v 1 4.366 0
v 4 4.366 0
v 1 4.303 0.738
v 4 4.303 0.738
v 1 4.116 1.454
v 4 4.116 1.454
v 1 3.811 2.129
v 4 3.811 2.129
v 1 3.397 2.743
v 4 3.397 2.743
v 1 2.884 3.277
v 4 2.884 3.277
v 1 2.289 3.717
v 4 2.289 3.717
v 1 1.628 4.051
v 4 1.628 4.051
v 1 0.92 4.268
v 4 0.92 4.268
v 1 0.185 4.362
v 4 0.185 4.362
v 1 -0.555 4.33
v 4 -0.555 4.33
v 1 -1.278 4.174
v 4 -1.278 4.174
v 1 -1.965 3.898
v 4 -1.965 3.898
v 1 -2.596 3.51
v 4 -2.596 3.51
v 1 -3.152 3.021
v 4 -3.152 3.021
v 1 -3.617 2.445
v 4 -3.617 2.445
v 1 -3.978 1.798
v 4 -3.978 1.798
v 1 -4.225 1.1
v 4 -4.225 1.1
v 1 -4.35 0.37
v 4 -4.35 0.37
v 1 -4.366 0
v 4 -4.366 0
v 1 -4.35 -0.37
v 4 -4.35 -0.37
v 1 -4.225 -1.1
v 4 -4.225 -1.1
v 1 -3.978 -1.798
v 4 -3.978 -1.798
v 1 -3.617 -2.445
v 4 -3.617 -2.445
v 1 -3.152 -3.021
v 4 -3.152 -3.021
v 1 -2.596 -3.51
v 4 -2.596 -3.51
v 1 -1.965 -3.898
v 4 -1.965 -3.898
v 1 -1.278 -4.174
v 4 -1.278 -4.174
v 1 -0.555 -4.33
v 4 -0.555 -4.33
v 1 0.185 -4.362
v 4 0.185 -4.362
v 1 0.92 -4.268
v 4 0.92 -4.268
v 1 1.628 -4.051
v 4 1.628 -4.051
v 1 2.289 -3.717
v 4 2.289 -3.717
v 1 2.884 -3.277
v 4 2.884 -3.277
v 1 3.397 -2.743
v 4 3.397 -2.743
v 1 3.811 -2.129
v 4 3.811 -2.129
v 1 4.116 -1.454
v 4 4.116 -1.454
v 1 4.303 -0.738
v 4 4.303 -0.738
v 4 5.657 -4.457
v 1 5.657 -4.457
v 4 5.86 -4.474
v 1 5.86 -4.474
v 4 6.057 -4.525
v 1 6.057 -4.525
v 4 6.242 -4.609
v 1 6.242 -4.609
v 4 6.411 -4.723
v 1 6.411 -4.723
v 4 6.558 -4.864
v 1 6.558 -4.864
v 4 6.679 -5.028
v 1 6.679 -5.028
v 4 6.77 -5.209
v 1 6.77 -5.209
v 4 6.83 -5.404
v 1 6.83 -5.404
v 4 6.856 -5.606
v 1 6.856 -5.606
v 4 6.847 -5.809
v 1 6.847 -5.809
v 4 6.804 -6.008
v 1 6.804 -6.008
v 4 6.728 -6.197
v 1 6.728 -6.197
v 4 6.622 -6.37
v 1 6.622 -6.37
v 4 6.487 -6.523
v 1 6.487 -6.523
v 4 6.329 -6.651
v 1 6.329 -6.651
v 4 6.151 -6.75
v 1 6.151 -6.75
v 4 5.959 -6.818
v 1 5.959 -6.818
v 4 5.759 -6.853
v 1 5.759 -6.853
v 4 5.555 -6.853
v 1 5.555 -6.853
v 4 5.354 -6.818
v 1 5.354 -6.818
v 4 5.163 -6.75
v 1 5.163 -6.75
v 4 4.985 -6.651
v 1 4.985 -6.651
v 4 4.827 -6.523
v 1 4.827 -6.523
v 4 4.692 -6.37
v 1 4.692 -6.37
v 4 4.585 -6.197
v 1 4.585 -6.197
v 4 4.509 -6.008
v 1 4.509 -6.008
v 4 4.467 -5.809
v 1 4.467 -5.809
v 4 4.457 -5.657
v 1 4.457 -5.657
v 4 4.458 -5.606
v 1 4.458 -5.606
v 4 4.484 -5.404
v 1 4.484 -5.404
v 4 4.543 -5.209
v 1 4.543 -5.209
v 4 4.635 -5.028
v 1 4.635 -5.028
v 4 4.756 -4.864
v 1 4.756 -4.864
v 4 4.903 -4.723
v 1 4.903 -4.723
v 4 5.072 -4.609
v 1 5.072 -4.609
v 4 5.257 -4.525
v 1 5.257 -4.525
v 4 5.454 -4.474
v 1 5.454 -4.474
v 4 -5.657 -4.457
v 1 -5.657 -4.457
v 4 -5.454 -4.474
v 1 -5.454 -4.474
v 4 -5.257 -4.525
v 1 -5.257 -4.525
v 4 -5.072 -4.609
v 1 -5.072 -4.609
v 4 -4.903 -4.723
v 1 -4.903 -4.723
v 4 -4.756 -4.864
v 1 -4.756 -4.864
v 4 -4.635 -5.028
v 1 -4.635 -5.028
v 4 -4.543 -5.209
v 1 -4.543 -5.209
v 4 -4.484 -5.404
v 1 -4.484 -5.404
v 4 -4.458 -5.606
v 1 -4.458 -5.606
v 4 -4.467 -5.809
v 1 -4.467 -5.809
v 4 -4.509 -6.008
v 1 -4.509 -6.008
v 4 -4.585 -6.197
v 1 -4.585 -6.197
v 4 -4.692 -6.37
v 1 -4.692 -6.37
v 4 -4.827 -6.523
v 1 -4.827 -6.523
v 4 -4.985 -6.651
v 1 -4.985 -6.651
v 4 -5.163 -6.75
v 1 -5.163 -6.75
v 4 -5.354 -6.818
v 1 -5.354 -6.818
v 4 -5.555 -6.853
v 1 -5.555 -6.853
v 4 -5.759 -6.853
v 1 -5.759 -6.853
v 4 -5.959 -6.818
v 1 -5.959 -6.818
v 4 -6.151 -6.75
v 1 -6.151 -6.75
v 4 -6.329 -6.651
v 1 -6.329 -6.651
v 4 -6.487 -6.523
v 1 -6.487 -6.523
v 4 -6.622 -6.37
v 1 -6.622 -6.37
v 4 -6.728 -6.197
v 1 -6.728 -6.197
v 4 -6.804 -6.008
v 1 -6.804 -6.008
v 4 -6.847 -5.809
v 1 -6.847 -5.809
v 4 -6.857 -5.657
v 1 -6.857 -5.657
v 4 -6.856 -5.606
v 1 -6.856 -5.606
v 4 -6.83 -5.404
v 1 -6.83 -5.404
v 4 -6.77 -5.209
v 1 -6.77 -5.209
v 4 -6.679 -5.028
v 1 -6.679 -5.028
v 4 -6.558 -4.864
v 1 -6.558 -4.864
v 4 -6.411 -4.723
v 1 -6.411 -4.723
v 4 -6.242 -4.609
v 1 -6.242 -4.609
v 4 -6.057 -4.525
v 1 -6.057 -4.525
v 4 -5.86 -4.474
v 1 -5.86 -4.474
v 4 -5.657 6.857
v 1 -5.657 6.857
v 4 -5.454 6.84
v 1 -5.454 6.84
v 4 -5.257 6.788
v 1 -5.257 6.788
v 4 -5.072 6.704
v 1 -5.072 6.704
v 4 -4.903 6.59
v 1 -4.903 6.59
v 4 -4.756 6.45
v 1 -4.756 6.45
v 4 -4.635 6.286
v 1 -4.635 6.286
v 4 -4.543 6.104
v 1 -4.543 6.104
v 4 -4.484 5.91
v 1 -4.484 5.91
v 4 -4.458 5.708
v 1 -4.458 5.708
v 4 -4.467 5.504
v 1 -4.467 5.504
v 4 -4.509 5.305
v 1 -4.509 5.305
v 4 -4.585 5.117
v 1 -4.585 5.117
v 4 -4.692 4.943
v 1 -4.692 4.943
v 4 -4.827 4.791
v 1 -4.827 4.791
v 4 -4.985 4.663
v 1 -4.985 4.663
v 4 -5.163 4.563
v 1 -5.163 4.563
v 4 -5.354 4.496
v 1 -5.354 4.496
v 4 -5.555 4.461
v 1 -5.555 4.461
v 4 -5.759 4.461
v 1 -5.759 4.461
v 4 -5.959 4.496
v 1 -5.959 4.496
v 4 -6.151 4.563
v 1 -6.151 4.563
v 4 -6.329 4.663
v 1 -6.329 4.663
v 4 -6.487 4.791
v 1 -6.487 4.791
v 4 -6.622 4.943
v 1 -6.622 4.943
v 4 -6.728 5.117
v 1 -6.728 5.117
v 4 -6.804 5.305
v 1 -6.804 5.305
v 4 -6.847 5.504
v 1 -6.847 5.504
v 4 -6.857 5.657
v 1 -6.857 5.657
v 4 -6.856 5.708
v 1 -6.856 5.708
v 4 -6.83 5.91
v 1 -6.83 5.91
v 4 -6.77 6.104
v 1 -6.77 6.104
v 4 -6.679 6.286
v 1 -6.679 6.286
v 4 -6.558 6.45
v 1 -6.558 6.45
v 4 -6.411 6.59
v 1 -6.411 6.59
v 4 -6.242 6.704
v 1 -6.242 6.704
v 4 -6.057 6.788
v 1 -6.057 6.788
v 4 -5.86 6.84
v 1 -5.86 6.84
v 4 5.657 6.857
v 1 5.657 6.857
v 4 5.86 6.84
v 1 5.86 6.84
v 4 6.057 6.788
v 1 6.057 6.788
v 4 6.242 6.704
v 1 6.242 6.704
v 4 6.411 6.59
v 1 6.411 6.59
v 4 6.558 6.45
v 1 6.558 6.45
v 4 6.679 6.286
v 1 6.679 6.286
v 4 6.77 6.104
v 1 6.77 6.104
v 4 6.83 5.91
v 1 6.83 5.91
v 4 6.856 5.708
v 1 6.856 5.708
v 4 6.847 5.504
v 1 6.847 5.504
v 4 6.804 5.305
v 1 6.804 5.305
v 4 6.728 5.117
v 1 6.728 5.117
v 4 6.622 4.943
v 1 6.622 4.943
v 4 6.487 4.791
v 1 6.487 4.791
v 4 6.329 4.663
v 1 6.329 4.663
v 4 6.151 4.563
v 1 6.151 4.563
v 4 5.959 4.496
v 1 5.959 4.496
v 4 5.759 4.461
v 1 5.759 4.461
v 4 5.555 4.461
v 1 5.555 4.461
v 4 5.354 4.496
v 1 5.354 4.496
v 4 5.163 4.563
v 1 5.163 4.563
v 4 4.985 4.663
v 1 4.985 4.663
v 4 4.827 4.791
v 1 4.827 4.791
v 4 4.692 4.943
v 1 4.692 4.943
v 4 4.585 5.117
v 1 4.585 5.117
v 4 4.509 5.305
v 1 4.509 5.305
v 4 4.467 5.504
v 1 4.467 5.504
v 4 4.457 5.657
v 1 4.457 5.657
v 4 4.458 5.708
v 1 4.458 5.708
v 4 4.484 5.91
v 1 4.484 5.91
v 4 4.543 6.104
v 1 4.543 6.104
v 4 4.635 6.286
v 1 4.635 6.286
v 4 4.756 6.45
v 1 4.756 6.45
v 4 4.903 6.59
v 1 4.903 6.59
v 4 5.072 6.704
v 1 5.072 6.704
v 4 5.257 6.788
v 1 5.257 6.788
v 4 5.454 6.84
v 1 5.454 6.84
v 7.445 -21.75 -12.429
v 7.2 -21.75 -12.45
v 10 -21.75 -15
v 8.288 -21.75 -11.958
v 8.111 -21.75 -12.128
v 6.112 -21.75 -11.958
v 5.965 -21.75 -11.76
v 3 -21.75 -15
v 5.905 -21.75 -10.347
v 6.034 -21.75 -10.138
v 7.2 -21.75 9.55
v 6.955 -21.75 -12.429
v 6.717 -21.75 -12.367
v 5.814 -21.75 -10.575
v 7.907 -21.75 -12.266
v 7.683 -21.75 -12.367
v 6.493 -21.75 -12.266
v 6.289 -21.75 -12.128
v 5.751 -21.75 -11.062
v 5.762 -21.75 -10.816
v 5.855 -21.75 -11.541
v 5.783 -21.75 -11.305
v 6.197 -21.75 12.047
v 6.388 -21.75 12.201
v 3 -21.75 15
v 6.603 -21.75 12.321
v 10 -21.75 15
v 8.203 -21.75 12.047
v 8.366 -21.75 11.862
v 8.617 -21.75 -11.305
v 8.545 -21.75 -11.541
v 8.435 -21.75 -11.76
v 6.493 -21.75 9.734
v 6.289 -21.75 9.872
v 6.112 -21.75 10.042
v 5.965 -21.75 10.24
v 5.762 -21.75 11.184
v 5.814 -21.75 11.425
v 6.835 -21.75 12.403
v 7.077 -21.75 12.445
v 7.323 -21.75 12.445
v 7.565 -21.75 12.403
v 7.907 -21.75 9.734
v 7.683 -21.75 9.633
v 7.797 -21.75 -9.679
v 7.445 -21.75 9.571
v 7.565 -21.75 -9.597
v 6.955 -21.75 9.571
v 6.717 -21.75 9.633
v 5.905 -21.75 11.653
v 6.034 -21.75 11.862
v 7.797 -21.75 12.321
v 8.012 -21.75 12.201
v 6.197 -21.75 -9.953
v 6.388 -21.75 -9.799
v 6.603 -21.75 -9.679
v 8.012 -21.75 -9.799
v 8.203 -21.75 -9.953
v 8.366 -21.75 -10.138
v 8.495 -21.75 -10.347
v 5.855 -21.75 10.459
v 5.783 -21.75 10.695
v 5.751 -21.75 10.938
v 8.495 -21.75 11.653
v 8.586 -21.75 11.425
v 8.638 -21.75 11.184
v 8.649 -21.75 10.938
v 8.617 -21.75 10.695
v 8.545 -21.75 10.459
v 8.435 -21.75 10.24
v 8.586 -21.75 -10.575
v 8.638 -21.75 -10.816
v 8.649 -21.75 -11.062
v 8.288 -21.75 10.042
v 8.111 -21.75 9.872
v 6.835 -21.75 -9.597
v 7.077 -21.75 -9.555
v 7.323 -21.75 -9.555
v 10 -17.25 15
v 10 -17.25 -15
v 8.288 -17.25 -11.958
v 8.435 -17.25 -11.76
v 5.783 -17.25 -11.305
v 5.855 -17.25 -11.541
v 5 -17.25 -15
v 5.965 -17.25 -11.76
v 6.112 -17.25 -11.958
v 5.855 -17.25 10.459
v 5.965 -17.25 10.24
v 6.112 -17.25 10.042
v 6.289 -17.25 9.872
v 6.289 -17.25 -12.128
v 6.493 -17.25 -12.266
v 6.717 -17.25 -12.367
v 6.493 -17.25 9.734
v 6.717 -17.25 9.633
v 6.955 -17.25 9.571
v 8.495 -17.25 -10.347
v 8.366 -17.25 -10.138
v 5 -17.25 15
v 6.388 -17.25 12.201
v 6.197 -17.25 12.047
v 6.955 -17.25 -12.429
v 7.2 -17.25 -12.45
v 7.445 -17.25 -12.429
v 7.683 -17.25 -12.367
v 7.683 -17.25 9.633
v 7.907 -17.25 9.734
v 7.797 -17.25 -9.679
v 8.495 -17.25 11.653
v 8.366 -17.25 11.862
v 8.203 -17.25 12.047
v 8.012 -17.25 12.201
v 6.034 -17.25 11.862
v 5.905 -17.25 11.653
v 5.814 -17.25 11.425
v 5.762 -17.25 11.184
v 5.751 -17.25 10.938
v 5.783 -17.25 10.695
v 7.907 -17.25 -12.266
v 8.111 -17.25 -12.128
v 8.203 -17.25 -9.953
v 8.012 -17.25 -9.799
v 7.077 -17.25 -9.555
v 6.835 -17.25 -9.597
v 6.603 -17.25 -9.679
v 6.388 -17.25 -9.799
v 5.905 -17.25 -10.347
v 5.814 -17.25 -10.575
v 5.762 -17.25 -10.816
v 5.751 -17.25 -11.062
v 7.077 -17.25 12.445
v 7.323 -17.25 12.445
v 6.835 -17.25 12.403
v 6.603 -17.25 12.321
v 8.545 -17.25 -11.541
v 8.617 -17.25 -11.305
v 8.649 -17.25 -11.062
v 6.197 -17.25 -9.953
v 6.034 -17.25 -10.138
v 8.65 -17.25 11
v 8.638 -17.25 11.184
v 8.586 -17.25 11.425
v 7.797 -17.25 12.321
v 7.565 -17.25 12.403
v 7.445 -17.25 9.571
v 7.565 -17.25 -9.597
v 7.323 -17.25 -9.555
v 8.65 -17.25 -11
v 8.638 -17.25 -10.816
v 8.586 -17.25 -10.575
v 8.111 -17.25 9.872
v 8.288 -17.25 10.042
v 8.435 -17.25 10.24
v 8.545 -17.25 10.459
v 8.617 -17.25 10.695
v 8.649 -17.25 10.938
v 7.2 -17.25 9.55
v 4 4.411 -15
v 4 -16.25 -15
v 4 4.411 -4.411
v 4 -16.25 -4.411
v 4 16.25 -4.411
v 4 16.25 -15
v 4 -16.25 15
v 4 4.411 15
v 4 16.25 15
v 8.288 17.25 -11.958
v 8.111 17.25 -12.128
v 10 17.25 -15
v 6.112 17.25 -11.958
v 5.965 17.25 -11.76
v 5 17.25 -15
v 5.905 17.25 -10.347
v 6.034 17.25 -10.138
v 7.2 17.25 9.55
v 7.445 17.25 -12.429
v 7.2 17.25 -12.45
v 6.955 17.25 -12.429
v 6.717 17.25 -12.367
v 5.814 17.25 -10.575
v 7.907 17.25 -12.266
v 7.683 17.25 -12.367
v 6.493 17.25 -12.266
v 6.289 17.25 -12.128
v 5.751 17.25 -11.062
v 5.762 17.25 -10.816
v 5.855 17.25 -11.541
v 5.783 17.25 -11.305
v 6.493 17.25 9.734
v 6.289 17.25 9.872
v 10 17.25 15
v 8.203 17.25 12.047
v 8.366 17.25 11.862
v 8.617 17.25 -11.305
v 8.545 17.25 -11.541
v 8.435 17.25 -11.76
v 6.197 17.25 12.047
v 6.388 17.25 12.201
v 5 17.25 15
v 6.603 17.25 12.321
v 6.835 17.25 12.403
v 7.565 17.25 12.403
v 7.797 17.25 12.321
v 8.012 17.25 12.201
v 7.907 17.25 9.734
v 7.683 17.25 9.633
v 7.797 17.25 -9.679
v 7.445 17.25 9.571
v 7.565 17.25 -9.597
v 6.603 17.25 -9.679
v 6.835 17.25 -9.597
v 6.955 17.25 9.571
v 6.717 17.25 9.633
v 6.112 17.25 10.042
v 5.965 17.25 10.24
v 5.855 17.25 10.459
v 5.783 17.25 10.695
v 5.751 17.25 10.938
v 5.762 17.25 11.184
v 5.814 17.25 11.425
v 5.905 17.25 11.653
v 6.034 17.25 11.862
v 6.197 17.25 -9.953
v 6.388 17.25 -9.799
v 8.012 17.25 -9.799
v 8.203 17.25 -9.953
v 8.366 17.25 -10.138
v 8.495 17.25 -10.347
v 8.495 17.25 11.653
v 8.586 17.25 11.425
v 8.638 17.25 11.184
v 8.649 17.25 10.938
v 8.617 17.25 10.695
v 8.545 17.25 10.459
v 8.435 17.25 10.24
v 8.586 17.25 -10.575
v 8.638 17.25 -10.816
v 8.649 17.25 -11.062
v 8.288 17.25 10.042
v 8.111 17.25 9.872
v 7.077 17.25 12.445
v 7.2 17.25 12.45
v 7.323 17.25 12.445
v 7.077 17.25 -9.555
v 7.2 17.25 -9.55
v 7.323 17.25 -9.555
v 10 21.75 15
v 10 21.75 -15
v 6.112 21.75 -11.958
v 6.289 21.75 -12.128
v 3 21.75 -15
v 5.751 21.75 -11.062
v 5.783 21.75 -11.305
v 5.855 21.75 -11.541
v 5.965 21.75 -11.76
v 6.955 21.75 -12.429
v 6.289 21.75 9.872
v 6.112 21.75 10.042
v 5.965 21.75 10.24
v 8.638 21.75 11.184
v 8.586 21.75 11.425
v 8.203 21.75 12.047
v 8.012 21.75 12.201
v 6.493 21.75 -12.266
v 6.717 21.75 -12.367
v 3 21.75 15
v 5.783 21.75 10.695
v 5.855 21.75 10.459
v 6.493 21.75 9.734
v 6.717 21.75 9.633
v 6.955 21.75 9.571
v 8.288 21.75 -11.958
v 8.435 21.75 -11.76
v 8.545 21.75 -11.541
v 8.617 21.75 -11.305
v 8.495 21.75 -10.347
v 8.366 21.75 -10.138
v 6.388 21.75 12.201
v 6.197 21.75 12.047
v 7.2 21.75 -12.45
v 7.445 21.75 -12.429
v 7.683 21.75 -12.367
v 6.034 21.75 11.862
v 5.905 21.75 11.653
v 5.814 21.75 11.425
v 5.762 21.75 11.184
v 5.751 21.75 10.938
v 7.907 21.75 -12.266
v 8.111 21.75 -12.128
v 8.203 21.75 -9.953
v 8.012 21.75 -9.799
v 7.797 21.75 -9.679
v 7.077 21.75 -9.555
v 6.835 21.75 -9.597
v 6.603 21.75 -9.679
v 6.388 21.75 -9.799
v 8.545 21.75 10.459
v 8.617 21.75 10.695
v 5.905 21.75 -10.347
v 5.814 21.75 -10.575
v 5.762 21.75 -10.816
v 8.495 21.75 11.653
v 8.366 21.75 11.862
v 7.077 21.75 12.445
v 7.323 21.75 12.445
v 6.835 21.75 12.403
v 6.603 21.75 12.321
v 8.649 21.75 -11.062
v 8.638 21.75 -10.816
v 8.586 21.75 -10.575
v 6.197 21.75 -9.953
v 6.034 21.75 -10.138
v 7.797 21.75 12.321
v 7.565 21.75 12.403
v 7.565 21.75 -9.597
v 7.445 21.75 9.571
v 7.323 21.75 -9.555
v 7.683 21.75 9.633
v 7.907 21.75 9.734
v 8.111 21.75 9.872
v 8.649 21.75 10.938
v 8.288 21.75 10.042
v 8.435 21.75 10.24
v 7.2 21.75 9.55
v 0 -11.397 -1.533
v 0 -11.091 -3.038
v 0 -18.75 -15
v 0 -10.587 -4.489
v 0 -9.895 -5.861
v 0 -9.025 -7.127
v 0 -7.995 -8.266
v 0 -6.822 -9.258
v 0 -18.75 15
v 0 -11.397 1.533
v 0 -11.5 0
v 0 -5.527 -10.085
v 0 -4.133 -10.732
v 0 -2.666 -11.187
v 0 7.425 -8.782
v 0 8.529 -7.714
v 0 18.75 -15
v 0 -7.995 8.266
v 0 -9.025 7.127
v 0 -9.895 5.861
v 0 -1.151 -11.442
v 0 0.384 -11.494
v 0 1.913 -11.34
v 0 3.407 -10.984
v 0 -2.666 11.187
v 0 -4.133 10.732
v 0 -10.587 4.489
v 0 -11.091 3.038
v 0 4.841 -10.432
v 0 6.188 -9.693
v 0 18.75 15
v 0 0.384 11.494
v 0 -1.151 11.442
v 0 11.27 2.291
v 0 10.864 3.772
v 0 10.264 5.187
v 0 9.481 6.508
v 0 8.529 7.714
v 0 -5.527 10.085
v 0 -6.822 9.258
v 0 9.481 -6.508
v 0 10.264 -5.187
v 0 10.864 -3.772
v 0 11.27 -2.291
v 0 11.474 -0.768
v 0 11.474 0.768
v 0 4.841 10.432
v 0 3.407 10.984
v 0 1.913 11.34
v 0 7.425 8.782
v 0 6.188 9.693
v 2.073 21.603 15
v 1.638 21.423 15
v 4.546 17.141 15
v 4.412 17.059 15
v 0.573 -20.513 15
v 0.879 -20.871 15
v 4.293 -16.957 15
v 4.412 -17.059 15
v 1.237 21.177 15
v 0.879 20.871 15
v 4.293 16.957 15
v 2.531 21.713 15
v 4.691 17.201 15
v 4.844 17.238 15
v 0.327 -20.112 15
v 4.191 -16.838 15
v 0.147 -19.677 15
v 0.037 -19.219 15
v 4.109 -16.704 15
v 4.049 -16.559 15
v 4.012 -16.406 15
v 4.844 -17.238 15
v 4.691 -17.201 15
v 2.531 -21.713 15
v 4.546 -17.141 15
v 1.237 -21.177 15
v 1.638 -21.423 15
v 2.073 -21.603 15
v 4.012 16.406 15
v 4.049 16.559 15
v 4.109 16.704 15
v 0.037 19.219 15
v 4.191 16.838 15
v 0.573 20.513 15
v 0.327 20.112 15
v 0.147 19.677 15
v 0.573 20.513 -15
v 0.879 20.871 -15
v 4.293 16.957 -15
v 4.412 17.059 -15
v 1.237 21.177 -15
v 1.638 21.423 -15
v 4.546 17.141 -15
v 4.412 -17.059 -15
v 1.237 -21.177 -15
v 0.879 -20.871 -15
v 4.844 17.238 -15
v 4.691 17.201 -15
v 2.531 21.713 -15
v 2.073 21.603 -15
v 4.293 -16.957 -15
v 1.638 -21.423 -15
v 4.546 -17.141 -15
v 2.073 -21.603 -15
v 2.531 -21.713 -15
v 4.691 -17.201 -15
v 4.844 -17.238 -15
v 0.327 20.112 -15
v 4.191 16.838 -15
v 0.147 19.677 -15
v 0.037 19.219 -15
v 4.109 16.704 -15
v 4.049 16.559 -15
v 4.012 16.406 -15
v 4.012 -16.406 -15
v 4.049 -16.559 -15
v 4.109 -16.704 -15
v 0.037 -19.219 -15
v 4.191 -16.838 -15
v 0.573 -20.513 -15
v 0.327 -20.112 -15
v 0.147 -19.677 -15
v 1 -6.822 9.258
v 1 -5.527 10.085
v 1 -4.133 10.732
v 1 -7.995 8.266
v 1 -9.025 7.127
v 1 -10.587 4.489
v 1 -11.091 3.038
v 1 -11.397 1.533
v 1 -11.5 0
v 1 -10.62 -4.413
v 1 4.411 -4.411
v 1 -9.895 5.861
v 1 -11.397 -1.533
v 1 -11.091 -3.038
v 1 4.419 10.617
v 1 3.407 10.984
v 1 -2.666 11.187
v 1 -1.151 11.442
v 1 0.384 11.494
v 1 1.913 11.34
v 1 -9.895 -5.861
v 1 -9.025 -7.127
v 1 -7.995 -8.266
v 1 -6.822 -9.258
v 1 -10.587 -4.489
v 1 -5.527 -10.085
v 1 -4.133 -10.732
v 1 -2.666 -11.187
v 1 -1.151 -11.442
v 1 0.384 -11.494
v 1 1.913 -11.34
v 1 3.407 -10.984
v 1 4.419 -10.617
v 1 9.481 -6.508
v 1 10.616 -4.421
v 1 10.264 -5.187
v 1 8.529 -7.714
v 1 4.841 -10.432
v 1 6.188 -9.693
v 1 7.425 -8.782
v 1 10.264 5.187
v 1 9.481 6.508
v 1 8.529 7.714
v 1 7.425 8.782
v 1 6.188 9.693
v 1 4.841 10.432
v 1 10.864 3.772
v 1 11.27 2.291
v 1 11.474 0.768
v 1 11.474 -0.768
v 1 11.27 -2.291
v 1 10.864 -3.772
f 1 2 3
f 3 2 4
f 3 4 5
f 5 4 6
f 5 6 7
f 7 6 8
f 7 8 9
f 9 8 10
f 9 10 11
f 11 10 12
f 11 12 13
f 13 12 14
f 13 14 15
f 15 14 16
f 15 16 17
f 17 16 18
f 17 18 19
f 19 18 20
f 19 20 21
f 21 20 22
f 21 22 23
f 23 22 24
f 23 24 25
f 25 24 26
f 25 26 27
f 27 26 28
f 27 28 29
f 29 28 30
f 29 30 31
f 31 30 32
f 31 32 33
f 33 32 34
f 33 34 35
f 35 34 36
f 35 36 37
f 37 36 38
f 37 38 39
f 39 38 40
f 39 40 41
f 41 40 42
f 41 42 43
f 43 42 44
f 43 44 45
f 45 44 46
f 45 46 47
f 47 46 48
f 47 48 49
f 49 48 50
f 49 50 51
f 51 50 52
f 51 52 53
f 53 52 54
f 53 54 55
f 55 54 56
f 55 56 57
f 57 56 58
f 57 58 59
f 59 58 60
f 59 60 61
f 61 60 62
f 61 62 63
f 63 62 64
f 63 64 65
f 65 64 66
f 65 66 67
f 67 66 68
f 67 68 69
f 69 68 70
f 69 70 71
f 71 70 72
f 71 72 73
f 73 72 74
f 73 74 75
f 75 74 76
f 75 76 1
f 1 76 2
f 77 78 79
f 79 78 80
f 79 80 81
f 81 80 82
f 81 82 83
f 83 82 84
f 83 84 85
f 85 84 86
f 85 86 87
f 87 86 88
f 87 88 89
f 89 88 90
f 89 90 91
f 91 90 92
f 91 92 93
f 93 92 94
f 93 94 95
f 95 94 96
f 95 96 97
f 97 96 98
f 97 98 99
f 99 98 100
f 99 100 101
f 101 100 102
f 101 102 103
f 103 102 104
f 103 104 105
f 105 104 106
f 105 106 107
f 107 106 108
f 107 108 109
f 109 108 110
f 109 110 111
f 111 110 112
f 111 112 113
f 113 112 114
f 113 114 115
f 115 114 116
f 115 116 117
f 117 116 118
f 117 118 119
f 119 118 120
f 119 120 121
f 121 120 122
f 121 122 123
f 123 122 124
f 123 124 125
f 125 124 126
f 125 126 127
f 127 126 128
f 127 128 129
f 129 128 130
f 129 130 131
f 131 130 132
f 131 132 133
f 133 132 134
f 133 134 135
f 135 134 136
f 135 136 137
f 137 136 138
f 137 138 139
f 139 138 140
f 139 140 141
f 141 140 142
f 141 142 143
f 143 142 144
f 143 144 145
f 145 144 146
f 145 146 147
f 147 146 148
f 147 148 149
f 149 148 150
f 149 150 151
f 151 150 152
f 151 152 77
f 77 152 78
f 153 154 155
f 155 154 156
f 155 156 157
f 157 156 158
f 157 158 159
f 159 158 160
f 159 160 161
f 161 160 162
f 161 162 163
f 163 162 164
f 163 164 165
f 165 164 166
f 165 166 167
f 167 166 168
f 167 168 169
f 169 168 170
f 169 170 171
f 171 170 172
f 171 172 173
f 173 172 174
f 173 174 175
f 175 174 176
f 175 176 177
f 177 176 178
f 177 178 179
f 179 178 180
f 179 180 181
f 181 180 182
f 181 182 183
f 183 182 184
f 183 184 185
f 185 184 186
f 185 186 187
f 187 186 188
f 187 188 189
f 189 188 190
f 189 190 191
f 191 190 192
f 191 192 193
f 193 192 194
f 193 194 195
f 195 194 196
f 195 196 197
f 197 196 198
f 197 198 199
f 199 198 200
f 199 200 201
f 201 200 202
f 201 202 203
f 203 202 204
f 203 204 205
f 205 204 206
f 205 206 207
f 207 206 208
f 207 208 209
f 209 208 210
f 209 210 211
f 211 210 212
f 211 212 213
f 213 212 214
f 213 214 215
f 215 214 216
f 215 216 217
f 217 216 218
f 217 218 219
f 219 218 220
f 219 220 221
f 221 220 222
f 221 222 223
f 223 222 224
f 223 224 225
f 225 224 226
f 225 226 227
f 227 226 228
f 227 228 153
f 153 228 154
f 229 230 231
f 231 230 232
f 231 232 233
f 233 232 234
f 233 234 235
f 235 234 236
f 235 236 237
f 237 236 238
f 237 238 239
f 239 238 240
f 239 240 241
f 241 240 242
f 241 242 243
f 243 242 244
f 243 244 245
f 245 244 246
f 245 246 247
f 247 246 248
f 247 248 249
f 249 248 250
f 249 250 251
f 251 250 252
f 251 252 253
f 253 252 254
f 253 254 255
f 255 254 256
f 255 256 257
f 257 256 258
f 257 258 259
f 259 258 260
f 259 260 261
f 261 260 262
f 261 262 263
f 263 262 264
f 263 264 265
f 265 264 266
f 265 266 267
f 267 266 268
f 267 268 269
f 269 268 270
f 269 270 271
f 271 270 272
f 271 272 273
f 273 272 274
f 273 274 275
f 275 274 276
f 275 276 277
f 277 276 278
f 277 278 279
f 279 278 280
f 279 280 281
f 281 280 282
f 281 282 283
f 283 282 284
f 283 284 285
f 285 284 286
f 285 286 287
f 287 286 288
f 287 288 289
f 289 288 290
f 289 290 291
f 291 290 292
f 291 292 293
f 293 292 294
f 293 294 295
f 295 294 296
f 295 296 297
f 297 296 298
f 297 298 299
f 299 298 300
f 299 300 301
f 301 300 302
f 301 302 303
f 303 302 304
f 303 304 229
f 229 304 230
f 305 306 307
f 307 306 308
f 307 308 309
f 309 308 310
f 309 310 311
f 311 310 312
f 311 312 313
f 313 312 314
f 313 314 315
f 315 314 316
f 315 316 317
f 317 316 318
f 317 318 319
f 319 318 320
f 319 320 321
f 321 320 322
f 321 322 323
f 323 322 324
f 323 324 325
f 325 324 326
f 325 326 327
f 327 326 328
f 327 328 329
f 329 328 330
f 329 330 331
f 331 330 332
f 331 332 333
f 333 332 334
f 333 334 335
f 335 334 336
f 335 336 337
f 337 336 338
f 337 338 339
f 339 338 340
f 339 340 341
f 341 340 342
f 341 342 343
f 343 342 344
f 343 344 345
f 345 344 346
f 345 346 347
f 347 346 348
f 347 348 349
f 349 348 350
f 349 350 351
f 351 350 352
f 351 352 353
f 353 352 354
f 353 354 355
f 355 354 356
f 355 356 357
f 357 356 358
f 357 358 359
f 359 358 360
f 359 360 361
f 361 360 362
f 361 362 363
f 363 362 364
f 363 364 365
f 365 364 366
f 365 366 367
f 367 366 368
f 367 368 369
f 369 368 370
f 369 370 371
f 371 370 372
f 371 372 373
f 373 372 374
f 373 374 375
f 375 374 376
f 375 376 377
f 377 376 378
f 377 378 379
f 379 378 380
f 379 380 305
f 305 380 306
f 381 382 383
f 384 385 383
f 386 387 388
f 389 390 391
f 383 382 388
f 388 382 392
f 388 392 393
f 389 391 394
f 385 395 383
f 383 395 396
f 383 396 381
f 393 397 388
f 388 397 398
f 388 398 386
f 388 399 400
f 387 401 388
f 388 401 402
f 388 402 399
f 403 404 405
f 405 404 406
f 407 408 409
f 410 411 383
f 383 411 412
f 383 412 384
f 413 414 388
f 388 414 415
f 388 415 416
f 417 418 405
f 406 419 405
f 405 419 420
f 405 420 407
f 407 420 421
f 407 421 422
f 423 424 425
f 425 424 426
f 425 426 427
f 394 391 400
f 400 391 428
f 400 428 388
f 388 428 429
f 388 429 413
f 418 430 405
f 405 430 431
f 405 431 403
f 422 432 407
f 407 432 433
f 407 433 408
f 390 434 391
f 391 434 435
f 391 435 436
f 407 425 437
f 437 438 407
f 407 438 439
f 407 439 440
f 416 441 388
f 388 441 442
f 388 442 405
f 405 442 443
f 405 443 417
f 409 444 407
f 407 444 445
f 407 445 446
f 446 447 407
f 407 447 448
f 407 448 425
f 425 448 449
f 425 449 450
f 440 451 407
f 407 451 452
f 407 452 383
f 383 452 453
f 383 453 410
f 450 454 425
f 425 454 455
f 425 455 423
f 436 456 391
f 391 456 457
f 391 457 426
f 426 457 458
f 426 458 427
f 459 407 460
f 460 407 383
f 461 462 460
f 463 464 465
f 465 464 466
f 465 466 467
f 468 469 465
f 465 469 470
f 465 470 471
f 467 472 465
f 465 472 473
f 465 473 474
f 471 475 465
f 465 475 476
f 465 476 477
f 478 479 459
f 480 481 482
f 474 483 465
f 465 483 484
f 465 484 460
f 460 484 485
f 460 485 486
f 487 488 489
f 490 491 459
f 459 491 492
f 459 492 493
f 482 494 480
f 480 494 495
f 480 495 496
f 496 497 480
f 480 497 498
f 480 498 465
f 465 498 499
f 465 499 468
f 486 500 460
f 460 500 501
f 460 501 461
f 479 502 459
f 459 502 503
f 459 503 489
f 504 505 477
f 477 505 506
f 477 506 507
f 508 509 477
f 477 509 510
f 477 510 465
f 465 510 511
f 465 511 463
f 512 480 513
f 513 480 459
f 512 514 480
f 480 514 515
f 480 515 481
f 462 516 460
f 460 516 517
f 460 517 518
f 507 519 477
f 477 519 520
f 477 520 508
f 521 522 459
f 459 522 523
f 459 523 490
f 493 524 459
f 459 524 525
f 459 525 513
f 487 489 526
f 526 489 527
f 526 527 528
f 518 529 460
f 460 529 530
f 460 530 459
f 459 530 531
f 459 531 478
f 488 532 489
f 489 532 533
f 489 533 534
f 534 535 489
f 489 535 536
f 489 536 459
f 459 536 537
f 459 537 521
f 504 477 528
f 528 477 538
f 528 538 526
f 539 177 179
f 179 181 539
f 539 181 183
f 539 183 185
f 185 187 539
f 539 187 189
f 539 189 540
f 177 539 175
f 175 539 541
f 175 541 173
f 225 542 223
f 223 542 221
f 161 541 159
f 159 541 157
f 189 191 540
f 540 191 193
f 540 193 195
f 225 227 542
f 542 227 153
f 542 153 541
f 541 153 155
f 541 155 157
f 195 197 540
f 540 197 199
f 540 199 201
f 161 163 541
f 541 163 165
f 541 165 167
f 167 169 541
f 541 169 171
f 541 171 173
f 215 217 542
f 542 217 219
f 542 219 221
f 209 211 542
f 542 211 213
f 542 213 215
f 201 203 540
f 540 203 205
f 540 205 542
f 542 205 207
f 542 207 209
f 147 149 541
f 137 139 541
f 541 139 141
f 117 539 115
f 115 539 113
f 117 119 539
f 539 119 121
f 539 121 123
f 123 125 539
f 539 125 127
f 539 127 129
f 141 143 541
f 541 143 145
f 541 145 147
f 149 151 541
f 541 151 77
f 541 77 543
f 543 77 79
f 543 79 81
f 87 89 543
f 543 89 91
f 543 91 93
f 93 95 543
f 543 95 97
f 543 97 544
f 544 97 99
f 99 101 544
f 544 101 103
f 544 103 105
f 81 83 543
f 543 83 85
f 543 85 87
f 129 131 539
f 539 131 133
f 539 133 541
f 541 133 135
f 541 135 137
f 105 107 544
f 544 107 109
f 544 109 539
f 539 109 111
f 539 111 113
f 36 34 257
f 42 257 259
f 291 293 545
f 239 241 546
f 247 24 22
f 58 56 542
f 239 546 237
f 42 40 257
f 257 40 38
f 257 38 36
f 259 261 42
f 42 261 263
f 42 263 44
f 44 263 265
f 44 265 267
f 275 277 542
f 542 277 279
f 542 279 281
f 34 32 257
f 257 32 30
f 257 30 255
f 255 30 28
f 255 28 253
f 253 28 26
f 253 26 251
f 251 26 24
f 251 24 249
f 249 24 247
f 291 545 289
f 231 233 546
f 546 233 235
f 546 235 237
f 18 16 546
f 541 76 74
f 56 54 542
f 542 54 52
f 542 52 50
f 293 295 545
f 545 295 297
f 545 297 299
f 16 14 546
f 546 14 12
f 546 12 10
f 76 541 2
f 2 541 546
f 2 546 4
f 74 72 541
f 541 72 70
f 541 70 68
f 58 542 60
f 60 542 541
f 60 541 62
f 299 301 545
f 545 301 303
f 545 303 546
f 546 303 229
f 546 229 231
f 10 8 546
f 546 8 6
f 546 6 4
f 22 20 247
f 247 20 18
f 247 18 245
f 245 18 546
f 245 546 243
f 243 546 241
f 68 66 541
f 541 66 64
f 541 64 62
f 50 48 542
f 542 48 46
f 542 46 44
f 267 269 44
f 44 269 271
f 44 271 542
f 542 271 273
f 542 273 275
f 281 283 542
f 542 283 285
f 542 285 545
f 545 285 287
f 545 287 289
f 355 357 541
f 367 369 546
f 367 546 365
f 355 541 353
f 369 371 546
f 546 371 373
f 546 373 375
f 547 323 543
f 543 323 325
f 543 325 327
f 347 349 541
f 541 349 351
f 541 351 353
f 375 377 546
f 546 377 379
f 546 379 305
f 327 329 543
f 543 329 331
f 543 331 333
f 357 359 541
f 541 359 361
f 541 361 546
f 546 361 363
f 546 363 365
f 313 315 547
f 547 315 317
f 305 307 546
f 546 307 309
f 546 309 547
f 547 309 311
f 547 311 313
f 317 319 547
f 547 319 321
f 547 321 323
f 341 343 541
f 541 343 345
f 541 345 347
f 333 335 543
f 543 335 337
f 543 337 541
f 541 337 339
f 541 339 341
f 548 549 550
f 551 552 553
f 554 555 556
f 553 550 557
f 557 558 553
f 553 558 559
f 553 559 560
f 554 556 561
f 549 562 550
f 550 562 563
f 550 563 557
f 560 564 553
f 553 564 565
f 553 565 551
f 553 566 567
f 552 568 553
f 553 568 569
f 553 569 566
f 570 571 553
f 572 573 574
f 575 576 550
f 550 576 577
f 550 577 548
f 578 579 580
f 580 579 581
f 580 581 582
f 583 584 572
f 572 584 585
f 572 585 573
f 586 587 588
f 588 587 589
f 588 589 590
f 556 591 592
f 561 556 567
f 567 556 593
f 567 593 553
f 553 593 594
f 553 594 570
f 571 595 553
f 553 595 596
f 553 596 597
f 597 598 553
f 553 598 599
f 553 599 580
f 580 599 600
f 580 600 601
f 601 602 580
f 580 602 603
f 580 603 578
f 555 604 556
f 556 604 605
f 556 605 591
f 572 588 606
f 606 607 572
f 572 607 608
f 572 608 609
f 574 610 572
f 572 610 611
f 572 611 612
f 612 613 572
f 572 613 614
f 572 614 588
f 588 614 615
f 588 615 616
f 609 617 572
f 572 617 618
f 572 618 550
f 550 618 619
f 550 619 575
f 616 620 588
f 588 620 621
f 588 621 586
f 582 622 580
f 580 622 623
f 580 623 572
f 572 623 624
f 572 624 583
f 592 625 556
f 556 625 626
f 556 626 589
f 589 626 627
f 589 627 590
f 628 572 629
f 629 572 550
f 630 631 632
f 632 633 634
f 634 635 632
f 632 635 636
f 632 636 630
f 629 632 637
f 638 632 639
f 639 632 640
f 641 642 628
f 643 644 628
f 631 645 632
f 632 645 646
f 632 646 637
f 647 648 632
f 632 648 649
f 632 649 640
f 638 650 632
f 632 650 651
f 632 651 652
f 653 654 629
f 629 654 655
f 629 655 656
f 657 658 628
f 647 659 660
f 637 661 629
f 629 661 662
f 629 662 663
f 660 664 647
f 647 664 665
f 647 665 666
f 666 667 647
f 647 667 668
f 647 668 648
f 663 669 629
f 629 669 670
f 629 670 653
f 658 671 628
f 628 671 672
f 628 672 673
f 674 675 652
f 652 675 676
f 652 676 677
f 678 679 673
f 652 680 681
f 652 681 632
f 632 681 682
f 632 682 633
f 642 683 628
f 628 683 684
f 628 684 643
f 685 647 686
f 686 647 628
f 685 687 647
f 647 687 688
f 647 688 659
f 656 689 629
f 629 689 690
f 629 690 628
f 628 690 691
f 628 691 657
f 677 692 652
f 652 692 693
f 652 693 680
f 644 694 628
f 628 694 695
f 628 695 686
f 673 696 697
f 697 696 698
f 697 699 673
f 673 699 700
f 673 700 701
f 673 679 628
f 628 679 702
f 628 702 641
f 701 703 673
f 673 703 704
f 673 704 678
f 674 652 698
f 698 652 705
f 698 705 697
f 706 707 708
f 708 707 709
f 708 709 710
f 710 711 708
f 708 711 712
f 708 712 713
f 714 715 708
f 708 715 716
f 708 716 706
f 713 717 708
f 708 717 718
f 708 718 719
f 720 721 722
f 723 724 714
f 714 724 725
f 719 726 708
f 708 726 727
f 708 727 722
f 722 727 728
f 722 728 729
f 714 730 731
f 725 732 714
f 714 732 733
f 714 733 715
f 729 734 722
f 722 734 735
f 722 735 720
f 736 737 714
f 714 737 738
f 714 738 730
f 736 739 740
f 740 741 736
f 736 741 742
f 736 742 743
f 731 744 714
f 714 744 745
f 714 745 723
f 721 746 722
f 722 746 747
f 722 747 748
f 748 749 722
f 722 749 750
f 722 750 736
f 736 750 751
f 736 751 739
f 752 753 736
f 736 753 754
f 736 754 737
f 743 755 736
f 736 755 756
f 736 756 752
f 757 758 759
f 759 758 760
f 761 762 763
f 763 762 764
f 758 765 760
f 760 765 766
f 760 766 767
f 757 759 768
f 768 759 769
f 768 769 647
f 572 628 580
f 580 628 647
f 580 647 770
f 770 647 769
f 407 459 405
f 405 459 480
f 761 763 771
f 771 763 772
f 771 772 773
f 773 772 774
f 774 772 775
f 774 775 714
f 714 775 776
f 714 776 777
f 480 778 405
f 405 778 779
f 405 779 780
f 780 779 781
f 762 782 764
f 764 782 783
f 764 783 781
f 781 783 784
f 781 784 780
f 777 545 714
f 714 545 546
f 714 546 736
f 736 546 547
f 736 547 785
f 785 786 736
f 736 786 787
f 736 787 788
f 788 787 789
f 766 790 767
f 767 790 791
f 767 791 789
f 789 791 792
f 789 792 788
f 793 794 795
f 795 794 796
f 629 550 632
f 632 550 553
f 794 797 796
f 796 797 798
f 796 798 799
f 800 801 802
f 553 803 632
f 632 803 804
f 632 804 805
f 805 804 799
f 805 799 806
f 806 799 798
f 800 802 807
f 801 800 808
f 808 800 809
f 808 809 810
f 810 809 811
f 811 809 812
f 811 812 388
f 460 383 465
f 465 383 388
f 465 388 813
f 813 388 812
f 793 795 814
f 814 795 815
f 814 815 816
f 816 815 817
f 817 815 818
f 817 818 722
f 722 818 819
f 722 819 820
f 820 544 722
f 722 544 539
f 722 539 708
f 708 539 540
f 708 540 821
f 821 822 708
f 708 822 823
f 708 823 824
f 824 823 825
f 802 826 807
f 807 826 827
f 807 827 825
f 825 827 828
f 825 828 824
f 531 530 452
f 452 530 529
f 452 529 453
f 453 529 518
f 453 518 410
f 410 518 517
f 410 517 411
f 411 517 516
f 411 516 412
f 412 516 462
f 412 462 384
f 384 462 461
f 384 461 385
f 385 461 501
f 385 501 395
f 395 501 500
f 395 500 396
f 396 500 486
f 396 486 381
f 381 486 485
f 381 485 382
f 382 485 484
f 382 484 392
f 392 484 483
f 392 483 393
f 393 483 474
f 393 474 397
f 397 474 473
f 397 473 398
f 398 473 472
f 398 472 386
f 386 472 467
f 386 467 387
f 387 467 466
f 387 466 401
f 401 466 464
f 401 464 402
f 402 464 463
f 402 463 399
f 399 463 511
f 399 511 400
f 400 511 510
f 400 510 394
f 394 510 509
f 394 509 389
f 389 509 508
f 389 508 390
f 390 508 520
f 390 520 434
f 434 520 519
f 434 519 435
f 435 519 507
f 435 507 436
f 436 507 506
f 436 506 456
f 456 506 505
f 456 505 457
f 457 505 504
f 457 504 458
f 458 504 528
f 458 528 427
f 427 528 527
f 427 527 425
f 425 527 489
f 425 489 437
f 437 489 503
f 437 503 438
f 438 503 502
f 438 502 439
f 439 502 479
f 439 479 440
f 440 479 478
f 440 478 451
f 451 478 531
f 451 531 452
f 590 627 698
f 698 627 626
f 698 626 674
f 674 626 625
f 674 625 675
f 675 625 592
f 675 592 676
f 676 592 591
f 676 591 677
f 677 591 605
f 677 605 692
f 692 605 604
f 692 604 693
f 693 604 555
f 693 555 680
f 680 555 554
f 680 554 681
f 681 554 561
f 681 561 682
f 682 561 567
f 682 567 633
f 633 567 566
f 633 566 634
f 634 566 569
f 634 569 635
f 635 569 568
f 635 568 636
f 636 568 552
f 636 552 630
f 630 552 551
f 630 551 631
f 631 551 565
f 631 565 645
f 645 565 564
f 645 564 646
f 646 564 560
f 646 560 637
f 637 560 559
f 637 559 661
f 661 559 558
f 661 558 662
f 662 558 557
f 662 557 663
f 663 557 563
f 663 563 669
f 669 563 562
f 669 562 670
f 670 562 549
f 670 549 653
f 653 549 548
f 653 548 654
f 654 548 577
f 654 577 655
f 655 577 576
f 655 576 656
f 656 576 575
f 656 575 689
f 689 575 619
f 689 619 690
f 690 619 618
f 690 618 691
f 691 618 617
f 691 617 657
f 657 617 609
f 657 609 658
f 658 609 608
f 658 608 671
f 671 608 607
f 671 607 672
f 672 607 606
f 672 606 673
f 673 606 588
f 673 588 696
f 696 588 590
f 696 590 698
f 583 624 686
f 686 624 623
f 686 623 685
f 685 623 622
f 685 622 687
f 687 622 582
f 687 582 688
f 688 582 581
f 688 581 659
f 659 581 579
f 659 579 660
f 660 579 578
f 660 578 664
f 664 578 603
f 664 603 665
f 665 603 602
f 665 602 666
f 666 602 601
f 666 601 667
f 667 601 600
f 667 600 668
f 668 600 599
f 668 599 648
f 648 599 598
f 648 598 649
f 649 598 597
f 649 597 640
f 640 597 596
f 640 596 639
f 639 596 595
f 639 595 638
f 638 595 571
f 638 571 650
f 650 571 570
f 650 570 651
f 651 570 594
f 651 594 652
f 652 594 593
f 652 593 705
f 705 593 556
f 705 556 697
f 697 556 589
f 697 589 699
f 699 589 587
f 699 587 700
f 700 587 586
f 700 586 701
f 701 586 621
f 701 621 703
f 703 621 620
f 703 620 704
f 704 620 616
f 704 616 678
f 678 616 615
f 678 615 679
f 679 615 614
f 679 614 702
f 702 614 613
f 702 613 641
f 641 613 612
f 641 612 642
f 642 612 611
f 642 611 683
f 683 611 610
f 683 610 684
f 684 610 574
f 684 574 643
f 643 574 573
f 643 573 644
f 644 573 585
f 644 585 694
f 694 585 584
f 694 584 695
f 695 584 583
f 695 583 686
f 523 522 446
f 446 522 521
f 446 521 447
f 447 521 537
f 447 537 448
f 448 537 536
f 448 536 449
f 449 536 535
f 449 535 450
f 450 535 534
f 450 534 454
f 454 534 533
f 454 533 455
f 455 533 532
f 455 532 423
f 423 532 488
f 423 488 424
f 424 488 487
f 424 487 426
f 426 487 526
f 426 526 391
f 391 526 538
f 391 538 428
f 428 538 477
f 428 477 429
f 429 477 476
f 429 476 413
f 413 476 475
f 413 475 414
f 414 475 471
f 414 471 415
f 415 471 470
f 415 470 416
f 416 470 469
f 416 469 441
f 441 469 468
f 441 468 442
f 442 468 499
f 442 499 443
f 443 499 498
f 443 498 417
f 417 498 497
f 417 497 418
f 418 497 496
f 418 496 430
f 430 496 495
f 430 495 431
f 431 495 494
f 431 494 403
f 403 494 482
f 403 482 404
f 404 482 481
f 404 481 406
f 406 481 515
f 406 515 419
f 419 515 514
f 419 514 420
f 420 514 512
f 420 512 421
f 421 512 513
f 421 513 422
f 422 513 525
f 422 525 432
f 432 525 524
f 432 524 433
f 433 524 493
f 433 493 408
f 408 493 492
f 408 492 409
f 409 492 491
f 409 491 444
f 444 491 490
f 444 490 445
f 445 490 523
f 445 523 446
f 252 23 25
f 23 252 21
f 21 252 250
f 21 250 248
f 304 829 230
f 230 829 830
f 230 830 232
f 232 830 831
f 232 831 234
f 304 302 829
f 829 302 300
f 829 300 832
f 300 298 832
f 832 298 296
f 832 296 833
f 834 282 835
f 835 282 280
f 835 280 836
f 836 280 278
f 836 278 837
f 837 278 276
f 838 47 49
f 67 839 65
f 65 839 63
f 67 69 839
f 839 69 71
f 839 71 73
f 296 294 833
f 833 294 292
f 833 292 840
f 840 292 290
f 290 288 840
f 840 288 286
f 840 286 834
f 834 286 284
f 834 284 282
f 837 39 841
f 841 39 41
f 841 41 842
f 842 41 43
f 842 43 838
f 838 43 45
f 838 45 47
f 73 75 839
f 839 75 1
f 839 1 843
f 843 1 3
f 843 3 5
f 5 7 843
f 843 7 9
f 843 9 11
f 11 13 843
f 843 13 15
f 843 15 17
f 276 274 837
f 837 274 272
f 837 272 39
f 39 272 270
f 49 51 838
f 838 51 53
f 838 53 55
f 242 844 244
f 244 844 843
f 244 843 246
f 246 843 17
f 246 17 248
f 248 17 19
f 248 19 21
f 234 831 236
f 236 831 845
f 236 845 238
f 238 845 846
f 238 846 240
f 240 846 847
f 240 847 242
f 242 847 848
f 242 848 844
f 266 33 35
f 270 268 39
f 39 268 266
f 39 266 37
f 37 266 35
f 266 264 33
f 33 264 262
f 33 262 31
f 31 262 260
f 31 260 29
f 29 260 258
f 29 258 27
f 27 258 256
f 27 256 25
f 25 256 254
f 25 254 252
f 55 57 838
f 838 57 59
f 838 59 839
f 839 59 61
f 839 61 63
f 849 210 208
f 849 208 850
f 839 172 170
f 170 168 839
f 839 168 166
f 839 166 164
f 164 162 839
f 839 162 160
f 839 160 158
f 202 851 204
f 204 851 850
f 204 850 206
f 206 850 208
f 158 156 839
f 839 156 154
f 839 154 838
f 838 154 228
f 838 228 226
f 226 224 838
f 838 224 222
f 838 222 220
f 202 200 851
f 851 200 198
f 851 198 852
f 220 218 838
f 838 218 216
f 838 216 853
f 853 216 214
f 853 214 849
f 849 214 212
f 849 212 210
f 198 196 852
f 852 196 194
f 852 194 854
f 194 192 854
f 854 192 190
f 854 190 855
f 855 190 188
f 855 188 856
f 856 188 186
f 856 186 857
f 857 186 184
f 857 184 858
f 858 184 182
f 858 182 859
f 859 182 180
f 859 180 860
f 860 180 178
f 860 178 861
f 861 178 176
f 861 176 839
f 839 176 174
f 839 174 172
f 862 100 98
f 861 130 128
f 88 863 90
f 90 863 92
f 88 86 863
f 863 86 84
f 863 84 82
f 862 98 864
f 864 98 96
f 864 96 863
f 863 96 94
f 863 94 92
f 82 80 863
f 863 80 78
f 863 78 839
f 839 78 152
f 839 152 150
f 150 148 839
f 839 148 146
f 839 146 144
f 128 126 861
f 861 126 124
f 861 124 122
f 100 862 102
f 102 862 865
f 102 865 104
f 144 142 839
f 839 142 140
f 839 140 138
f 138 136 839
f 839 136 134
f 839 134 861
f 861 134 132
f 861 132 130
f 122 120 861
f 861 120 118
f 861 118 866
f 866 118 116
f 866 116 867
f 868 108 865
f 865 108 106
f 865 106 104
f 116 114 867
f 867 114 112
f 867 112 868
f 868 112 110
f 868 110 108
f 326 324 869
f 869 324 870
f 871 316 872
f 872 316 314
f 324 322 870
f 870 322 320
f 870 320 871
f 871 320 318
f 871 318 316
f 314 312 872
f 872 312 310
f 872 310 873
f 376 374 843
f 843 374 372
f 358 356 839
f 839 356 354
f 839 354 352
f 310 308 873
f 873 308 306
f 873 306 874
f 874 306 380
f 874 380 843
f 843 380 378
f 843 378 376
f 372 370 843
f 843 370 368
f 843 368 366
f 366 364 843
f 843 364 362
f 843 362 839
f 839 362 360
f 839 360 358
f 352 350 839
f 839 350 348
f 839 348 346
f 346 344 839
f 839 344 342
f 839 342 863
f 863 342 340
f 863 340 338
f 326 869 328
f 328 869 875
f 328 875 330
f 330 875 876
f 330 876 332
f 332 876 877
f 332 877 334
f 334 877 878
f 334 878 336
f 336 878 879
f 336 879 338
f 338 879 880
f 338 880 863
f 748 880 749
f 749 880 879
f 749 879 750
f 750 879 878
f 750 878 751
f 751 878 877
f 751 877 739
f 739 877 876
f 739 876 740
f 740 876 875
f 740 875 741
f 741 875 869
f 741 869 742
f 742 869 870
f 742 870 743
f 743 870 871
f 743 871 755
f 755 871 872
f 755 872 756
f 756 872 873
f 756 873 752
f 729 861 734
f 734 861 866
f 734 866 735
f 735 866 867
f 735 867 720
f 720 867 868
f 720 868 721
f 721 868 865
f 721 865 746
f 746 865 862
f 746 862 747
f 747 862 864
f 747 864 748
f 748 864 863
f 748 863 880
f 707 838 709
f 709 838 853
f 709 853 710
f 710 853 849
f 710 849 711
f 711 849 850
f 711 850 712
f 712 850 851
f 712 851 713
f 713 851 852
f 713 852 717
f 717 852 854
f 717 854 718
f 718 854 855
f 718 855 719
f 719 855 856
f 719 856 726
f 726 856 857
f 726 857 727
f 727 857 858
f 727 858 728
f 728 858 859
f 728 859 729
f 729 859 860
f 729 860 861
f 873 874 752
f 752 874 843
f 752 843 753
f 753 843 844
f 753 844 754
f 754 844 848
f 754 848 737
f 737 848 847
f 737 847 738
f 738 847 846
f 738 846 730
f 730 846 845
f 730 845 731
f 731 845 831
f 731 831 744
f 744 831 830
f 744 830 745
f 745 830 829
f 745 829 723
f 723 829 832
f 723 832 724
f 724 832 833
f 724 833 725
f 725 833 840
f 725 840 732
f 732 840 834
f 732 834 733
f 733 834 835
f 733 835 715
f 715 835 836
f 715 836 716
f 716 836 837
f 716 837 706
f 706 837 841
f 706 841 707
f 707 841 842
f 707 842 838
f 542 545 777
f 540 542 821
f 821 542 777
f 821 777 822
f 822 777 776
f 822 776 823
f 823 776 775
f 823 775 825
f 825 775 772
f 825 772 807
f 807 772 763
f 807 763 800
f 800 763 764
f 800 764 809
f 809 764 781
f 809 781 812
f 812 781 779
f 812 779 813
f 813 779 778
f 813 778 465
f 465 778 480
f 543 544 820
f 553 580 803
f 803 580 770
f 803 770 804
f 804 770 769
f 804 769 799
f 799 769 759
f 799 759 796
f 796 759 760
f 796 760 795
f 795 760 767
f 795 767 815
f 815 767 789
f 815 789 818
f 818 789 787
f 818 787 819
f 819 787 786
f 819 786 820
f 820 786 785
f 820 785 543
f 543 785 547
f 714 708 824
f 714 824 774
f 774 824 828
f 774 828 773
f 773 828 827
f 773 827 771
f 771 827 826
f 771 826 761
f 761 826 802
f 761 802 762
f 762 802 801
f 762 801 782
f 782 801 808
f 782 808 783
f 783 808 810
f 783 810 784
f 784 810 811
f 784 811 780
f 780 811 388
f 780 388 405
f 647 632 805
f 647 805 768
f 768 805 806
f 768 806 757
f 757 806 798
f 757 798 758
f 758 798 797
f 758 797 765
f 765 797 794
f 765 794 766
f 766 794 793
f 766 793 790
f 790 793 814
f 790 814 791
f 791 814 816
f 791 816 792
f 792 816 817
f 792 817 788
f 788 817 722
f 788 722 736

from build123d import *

# Parameters (mm, degrees)
BOSS_EXTRUDE1_DEPTH     = 15
M2_5_CLEARANCE_HOLE1_D  = 2.9
CUT_EXTRUDE1_DEPTH      = 28.093587802
CUT_EXTRUDE1_DEPTH_BACK = 28.093587802
SKETCH3_R               = 4.365625
M2_CLEARANCE_HOLE1_D    = 2.4
SKETCH10_R              = 11.5
CUT_EXTRUDE3_DEPTH      = 1
FILLET1_R               = 1
FILLET2_R               = 3


with BuildPart() as part:
    # Sketch2 → Boss-Extrude1 (new, symmetric)
    with BuildSketch(Plane.XY):
        Polygon((0, 21.75), (0, -21.75), (10, -21.75), (10, -17.25), (4, -17.25), (4, 17.25), (10, 17.25), (10, 21.75), align=None)
    extrude(amount=BOSS_EXTRUDE1_DEPTH, both=True)

    # M2.5 Clearance Hole1 (through all)
    with Locations(Plane(origin=(0, -21.75, 0), x_dir=(-1, 0, 0), z_dir=(0, -1, 0))):
        with Locations((-7.2, -11), (-7.2, 11)):
            Hole(M2_5_CLEARANCE_HOLE1_D / 2)

    # Sketch3 → Cut-Extrude1 (cut, two sides: drawn at the far end of the back side and taken through both)
    with BuildSketch(Plane(origin=(4, 0, 0), x_dir=(0, 0, -1), z_dir=(1, 0, 0)).offset(-CUT_EXTRUDE1_DEPTH_BACK)):
        with Locations(Location((0, 0, 0), (0, 0, 90))):
            Circle(SKETCH3_R)
    extrude(amount=CUT_EXTRUDE1_DEPTH + CUT_EXTRUDE1_DEPTH_BACK, mode=Mode.SUBTRACT)

    # M2 Clearance Hole1 (through all)
    with Locations(Plane.ZY):
        with Locations((5.656854249, 5.656854249), (5.656854249, -5.656854249), (-5.656854249, -5.656854249), (-5.656854249, 5.656854249), (0, 0)):
            Hole(M2_CLEARANCE_HOLE1_D / 2)

    # Sketch10 → Cut-Extrude3 (cut)
    with BuildSketch(Plane.ZY):
        with Locations(Location((0, 0, 0), (0, 0, 270))):
            Circle(SKETCH10_R)
    extrude(amount=-CUT_EXTRUDE3_DEPTH, mode=Mode.SUBTRACT)

    # Fillet1
    fillet1_edges = [part.edges().sort_by_distance(p)[0] for p in [
        (4, 17.25, 0),
        (4, -17.25, 0),
    ]]
    fillet(fillet1_edges, radius=FILLET1_R)

    # Fillet2
    fillet2_edges = [part.edges().sort_by_distance(p)[0] for p in [
        (0, -21.75, 0),
        (0, 21.75, 0),
    ]]
    fillet(fillet2_edges, radius=FILLET2_R)


solid = part.part
